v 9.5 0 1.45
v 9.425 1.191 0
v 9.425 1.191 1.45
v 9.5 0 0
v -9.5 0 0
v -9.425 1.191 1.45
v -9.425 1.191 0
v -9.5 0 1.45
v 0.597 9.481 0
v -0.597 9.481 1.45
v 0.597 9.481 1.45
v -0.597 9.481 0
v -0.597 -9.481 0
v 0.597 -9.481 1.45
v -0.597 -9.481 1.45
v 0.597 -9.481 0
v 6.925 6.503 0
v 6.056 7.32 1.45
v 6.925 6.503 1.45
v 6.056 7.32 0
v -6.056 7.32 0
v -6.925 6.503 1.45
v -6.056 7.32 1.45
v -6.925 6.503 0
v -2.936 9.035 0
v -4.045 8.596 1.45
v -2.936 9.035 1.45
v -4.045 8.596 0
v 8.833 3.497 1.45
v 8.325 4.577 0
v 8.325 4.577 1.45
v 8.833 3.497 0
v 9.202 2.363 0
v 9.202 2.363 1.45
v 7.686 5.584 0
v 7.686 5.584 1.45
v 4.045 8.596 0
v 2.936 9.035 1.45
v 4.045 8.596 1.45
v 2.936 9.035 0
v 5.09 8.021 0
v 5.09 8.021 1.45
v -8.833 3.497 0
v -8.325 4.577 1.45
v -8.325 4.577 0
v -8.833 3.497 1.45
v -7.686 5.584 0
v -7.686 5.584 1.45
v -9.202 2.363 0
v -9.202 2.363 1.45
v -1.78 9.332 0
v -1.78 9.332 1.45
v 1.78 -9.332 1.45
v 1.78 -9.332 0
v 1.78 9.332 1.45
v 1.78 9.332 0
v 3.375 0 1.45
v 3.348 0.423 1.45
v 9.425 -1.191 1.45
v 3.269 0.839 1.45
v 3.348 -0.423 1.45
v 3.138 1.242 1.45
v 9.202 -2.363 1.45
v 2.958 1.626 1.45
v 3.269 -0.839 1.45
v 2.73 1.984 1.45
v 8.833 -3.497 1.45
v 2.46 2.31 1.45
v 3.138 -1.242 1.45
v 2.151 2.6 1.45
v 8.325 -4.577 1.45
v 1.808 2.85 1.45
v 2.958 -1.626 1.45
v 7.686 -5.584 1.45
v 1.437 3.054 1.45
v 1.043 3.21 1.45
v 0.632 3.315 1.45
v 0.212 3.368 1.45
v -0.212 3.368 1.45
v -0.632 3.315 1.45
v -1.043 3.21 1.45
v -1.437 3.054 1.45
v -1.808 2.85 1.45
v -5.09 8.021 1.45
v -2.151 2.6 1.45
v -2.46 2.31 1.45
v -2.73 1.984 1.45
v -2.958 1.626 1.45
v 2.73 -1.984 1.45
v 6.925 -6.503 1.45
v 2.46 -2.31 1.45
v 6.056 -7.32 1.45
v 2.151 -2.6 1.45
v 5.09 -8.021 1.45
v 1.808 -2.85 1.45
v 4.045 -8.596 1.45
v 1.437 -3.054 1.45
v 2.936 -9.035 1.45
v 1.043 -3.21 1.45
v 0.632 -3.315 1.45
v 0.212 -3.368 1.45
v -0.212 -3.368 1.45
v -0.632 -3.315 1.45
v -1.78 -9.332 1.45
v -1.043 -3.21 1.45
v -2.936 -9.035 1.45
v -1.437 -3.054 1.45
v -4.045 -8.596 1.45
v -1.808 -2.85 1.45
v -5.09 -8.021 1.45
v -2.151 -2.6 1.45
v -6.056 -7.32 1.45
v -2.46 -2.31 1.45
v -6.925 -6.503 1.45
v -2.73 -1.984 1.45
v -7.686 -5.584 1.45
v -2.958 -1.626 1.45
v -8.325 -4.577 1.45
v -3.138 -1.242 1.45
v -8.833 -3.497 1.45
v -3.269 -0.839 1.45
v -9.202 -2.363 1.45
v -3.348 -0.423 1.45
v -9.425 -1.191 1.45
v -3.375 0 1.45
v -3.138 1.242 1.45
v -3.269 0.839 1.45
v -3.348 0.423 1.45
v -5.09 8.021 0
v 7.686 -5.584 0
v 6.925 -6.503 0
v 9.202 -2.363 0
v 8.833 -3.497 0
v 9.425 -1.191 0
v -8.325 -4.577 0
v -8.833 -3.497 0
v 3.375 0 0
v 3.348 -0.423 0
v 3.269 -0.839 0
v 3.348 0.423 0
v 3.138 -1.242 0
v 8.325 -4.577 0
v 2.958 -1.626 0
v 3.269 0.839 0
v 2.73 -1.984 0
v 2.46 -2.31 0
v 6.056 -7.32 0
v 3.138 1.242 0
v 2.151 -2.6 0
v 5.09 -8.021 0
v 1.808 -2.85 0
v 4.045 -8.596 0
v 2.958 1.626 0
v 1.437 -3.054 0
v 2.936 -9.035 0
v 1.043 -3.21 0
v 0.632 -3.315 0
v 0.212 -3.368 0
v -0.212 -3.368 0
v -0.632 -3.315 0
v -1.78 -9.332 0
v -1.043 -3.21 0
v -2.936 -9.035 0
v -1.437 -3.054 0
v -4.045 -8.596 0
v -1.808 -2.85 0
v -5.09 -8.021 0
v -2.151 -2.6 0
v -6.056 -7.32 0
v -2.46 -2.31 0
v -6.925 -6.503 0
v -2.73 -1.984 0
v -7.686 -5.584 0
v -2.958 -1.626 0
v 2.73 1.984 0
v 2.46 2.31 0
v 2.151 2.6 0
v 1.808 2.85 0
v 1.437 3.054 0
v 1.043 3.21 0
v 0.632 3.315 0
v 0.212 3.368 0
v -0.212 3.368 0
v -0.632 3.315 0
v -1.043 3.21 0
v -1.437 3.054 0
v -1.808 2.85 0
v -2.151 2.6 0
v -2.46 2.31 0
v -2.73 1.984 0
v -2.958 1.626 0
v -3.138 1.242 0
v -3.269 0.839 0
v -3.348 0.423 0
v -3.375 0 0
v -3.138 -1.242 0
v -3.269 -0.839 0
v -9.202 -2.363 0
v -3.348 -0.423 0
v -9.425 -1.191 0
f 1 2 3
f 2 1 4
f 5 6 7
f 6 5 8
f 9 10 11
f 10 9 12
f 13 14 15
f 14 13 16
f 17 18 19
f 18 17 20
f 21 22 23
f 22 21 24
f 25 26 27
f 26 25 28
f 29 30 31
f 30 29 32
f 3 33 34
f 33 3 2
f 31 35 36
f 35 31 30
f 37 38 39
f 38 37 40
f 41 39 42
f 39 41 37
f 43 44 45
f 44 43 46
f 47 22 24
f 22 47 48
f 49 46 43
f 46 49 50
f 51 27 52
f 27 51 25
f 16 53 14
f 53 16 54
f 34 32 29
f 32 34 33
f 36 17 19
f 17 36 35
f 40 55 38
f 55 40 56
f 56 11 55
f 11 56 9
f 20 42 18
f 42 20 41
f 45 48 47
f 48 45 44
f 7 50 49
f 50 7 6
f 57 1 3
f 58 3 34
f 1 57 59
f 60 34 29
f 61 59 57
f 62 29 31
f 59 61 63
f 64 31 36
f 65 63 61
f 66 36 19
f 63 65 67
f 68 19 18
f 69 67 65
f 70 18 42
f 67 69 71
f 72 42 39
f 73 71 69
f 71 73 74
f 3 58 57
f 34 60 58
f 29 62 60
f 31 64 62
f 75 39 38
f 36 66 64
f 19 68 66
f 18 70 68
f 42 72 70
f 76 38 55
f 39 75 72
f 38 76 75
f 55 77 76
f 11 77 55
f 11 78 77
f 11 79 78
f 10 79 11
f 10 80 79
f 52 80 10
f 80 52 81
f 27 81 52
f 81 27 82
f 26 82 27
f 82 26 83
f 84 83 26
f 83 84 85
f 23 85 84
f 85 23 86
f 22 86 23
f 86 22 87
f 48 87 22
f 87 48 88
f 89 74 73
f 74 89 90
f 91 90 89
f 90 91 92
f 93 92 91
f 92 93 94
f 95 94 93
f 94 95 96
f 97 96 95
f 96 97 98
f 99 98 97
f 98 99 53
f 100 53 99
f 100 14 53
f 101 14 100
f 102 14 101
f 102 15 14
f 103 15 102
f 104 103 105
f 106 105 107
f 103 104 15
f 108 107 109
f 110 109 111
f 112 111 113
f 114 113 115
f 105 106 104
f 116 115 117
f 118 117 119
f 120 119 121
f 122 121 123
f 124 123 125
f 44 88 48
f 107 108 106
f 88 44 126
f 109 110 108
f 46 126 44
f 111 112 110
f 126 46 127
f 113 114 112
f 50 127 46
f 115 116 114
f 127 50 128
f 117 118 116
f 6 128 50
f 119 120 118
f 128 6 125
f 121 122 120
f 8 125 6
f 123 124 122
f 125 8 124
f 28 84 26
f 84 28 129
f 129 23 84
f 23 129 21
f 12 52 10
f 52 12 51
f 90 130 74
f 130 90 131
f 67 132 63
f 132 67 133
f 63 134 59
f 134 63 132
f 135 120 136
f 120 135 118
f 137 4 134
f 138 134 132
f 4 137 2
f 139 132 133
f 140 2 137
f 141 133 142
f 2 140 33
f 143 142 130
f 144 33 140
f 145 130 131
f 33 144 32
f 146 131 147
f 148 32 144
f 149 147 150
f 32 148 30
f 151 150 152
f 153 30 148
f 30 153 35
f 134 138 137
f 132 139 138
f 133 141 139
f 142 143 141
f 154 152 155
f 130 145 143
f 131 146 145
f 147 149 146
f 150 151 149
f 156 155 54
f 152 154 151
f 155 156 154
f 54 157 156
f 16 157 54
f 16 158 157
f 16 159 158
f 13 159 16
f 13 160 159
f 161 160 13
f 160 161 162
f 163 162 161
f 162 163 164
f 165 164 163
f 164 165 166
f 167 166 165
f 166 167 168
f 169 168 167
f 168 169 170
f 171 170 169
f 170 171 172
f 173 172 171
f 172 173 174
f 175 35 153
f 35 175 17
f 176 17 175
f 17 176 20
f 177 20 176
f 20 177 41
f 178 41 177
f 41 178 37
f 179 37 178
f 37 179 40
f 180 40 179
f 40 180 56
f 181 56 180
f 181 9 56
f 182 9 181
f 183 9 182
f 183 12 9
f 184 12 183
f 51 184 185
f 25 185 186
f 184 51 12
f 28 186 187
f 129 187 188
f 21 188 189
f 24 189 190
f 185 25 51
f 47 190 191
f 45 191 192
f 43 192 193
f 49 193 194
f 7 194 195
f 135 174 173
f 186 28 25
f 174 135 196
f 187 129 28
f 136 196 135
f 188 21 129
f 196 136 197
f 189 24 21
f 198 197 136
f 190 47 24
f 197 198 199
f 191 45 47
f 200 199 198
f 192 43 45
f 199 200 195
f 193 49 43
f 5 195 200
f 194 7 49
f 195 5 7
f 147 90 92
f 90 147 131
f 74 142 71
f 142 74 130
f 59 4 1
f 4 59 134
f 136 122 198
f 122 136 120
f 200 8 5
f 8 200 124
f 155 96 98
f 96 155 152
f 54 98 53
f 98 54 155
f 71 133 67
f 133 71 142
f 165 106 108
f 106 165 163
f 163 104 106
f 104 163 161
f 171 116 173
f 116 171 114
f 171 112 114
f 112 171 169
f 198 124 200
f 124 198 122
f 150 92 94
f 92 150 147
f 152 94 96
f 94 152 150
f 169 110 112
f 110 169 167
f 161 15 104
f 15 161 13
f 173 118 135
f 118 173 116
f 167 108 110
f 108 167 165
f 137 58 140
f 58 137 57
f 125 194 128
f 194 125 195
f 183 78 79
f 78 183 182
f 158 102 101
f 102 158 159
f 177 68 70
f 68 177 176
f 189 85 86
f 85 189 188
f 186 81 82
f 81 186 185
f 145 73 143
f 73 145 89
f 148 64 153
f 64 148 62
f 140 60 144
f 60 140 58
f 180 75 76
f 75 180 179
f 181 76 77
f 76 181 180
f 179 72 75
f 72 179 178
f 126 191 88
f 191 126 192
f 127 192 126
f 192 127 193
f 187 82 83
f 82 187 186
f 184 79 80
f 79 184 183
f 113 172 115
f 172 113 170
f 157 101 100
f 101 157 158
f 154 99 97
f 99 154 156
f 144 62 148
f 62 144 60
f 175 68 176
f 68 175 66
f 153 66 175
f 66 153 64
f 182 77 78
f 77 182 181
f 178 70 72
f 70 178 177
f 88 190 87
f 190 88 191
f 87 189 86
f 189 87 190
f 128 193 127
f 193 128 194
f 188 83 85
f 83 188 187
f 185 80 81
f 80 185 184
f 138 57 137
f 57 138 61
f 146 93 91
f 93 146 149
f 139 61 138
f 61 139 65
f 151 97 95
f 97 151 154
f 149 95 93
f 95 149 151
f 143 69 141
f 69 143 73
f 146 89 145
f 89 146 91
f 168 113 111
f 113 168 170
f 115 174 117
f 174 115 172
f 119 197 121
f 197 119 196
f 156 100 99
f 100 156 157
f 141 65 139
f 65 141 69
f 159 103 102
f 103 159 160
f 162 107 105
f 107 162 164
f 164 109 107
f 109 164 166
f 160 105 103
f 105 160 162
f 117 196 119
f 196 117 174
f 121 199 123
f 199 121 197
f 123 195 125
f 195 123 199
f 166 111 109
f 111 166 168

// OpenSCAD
// Simple Spacer for the Solar Beacon Antenna

$fn=50; // fragments
outer = 19.0; // Spacer outer diameter (mm)
inner = 6.75; // Diameter of hole for SMA connector
thickness = 3.0; // Total thickness of spacer and PCB
PCB_thickness = 1.55; // PCB thickness - subtracted from 'thickness' - change to 1.0mm if required

module spacer()
{
    difference() {
        cylinder(h=(thickness - PCB_thickness), r=(outer / 2));
        translate([0, 0, (0-(PCB_thickness / 2))])
            cylinder(h=(thickness), r=(inner / 2));
    }
}

spacer();
